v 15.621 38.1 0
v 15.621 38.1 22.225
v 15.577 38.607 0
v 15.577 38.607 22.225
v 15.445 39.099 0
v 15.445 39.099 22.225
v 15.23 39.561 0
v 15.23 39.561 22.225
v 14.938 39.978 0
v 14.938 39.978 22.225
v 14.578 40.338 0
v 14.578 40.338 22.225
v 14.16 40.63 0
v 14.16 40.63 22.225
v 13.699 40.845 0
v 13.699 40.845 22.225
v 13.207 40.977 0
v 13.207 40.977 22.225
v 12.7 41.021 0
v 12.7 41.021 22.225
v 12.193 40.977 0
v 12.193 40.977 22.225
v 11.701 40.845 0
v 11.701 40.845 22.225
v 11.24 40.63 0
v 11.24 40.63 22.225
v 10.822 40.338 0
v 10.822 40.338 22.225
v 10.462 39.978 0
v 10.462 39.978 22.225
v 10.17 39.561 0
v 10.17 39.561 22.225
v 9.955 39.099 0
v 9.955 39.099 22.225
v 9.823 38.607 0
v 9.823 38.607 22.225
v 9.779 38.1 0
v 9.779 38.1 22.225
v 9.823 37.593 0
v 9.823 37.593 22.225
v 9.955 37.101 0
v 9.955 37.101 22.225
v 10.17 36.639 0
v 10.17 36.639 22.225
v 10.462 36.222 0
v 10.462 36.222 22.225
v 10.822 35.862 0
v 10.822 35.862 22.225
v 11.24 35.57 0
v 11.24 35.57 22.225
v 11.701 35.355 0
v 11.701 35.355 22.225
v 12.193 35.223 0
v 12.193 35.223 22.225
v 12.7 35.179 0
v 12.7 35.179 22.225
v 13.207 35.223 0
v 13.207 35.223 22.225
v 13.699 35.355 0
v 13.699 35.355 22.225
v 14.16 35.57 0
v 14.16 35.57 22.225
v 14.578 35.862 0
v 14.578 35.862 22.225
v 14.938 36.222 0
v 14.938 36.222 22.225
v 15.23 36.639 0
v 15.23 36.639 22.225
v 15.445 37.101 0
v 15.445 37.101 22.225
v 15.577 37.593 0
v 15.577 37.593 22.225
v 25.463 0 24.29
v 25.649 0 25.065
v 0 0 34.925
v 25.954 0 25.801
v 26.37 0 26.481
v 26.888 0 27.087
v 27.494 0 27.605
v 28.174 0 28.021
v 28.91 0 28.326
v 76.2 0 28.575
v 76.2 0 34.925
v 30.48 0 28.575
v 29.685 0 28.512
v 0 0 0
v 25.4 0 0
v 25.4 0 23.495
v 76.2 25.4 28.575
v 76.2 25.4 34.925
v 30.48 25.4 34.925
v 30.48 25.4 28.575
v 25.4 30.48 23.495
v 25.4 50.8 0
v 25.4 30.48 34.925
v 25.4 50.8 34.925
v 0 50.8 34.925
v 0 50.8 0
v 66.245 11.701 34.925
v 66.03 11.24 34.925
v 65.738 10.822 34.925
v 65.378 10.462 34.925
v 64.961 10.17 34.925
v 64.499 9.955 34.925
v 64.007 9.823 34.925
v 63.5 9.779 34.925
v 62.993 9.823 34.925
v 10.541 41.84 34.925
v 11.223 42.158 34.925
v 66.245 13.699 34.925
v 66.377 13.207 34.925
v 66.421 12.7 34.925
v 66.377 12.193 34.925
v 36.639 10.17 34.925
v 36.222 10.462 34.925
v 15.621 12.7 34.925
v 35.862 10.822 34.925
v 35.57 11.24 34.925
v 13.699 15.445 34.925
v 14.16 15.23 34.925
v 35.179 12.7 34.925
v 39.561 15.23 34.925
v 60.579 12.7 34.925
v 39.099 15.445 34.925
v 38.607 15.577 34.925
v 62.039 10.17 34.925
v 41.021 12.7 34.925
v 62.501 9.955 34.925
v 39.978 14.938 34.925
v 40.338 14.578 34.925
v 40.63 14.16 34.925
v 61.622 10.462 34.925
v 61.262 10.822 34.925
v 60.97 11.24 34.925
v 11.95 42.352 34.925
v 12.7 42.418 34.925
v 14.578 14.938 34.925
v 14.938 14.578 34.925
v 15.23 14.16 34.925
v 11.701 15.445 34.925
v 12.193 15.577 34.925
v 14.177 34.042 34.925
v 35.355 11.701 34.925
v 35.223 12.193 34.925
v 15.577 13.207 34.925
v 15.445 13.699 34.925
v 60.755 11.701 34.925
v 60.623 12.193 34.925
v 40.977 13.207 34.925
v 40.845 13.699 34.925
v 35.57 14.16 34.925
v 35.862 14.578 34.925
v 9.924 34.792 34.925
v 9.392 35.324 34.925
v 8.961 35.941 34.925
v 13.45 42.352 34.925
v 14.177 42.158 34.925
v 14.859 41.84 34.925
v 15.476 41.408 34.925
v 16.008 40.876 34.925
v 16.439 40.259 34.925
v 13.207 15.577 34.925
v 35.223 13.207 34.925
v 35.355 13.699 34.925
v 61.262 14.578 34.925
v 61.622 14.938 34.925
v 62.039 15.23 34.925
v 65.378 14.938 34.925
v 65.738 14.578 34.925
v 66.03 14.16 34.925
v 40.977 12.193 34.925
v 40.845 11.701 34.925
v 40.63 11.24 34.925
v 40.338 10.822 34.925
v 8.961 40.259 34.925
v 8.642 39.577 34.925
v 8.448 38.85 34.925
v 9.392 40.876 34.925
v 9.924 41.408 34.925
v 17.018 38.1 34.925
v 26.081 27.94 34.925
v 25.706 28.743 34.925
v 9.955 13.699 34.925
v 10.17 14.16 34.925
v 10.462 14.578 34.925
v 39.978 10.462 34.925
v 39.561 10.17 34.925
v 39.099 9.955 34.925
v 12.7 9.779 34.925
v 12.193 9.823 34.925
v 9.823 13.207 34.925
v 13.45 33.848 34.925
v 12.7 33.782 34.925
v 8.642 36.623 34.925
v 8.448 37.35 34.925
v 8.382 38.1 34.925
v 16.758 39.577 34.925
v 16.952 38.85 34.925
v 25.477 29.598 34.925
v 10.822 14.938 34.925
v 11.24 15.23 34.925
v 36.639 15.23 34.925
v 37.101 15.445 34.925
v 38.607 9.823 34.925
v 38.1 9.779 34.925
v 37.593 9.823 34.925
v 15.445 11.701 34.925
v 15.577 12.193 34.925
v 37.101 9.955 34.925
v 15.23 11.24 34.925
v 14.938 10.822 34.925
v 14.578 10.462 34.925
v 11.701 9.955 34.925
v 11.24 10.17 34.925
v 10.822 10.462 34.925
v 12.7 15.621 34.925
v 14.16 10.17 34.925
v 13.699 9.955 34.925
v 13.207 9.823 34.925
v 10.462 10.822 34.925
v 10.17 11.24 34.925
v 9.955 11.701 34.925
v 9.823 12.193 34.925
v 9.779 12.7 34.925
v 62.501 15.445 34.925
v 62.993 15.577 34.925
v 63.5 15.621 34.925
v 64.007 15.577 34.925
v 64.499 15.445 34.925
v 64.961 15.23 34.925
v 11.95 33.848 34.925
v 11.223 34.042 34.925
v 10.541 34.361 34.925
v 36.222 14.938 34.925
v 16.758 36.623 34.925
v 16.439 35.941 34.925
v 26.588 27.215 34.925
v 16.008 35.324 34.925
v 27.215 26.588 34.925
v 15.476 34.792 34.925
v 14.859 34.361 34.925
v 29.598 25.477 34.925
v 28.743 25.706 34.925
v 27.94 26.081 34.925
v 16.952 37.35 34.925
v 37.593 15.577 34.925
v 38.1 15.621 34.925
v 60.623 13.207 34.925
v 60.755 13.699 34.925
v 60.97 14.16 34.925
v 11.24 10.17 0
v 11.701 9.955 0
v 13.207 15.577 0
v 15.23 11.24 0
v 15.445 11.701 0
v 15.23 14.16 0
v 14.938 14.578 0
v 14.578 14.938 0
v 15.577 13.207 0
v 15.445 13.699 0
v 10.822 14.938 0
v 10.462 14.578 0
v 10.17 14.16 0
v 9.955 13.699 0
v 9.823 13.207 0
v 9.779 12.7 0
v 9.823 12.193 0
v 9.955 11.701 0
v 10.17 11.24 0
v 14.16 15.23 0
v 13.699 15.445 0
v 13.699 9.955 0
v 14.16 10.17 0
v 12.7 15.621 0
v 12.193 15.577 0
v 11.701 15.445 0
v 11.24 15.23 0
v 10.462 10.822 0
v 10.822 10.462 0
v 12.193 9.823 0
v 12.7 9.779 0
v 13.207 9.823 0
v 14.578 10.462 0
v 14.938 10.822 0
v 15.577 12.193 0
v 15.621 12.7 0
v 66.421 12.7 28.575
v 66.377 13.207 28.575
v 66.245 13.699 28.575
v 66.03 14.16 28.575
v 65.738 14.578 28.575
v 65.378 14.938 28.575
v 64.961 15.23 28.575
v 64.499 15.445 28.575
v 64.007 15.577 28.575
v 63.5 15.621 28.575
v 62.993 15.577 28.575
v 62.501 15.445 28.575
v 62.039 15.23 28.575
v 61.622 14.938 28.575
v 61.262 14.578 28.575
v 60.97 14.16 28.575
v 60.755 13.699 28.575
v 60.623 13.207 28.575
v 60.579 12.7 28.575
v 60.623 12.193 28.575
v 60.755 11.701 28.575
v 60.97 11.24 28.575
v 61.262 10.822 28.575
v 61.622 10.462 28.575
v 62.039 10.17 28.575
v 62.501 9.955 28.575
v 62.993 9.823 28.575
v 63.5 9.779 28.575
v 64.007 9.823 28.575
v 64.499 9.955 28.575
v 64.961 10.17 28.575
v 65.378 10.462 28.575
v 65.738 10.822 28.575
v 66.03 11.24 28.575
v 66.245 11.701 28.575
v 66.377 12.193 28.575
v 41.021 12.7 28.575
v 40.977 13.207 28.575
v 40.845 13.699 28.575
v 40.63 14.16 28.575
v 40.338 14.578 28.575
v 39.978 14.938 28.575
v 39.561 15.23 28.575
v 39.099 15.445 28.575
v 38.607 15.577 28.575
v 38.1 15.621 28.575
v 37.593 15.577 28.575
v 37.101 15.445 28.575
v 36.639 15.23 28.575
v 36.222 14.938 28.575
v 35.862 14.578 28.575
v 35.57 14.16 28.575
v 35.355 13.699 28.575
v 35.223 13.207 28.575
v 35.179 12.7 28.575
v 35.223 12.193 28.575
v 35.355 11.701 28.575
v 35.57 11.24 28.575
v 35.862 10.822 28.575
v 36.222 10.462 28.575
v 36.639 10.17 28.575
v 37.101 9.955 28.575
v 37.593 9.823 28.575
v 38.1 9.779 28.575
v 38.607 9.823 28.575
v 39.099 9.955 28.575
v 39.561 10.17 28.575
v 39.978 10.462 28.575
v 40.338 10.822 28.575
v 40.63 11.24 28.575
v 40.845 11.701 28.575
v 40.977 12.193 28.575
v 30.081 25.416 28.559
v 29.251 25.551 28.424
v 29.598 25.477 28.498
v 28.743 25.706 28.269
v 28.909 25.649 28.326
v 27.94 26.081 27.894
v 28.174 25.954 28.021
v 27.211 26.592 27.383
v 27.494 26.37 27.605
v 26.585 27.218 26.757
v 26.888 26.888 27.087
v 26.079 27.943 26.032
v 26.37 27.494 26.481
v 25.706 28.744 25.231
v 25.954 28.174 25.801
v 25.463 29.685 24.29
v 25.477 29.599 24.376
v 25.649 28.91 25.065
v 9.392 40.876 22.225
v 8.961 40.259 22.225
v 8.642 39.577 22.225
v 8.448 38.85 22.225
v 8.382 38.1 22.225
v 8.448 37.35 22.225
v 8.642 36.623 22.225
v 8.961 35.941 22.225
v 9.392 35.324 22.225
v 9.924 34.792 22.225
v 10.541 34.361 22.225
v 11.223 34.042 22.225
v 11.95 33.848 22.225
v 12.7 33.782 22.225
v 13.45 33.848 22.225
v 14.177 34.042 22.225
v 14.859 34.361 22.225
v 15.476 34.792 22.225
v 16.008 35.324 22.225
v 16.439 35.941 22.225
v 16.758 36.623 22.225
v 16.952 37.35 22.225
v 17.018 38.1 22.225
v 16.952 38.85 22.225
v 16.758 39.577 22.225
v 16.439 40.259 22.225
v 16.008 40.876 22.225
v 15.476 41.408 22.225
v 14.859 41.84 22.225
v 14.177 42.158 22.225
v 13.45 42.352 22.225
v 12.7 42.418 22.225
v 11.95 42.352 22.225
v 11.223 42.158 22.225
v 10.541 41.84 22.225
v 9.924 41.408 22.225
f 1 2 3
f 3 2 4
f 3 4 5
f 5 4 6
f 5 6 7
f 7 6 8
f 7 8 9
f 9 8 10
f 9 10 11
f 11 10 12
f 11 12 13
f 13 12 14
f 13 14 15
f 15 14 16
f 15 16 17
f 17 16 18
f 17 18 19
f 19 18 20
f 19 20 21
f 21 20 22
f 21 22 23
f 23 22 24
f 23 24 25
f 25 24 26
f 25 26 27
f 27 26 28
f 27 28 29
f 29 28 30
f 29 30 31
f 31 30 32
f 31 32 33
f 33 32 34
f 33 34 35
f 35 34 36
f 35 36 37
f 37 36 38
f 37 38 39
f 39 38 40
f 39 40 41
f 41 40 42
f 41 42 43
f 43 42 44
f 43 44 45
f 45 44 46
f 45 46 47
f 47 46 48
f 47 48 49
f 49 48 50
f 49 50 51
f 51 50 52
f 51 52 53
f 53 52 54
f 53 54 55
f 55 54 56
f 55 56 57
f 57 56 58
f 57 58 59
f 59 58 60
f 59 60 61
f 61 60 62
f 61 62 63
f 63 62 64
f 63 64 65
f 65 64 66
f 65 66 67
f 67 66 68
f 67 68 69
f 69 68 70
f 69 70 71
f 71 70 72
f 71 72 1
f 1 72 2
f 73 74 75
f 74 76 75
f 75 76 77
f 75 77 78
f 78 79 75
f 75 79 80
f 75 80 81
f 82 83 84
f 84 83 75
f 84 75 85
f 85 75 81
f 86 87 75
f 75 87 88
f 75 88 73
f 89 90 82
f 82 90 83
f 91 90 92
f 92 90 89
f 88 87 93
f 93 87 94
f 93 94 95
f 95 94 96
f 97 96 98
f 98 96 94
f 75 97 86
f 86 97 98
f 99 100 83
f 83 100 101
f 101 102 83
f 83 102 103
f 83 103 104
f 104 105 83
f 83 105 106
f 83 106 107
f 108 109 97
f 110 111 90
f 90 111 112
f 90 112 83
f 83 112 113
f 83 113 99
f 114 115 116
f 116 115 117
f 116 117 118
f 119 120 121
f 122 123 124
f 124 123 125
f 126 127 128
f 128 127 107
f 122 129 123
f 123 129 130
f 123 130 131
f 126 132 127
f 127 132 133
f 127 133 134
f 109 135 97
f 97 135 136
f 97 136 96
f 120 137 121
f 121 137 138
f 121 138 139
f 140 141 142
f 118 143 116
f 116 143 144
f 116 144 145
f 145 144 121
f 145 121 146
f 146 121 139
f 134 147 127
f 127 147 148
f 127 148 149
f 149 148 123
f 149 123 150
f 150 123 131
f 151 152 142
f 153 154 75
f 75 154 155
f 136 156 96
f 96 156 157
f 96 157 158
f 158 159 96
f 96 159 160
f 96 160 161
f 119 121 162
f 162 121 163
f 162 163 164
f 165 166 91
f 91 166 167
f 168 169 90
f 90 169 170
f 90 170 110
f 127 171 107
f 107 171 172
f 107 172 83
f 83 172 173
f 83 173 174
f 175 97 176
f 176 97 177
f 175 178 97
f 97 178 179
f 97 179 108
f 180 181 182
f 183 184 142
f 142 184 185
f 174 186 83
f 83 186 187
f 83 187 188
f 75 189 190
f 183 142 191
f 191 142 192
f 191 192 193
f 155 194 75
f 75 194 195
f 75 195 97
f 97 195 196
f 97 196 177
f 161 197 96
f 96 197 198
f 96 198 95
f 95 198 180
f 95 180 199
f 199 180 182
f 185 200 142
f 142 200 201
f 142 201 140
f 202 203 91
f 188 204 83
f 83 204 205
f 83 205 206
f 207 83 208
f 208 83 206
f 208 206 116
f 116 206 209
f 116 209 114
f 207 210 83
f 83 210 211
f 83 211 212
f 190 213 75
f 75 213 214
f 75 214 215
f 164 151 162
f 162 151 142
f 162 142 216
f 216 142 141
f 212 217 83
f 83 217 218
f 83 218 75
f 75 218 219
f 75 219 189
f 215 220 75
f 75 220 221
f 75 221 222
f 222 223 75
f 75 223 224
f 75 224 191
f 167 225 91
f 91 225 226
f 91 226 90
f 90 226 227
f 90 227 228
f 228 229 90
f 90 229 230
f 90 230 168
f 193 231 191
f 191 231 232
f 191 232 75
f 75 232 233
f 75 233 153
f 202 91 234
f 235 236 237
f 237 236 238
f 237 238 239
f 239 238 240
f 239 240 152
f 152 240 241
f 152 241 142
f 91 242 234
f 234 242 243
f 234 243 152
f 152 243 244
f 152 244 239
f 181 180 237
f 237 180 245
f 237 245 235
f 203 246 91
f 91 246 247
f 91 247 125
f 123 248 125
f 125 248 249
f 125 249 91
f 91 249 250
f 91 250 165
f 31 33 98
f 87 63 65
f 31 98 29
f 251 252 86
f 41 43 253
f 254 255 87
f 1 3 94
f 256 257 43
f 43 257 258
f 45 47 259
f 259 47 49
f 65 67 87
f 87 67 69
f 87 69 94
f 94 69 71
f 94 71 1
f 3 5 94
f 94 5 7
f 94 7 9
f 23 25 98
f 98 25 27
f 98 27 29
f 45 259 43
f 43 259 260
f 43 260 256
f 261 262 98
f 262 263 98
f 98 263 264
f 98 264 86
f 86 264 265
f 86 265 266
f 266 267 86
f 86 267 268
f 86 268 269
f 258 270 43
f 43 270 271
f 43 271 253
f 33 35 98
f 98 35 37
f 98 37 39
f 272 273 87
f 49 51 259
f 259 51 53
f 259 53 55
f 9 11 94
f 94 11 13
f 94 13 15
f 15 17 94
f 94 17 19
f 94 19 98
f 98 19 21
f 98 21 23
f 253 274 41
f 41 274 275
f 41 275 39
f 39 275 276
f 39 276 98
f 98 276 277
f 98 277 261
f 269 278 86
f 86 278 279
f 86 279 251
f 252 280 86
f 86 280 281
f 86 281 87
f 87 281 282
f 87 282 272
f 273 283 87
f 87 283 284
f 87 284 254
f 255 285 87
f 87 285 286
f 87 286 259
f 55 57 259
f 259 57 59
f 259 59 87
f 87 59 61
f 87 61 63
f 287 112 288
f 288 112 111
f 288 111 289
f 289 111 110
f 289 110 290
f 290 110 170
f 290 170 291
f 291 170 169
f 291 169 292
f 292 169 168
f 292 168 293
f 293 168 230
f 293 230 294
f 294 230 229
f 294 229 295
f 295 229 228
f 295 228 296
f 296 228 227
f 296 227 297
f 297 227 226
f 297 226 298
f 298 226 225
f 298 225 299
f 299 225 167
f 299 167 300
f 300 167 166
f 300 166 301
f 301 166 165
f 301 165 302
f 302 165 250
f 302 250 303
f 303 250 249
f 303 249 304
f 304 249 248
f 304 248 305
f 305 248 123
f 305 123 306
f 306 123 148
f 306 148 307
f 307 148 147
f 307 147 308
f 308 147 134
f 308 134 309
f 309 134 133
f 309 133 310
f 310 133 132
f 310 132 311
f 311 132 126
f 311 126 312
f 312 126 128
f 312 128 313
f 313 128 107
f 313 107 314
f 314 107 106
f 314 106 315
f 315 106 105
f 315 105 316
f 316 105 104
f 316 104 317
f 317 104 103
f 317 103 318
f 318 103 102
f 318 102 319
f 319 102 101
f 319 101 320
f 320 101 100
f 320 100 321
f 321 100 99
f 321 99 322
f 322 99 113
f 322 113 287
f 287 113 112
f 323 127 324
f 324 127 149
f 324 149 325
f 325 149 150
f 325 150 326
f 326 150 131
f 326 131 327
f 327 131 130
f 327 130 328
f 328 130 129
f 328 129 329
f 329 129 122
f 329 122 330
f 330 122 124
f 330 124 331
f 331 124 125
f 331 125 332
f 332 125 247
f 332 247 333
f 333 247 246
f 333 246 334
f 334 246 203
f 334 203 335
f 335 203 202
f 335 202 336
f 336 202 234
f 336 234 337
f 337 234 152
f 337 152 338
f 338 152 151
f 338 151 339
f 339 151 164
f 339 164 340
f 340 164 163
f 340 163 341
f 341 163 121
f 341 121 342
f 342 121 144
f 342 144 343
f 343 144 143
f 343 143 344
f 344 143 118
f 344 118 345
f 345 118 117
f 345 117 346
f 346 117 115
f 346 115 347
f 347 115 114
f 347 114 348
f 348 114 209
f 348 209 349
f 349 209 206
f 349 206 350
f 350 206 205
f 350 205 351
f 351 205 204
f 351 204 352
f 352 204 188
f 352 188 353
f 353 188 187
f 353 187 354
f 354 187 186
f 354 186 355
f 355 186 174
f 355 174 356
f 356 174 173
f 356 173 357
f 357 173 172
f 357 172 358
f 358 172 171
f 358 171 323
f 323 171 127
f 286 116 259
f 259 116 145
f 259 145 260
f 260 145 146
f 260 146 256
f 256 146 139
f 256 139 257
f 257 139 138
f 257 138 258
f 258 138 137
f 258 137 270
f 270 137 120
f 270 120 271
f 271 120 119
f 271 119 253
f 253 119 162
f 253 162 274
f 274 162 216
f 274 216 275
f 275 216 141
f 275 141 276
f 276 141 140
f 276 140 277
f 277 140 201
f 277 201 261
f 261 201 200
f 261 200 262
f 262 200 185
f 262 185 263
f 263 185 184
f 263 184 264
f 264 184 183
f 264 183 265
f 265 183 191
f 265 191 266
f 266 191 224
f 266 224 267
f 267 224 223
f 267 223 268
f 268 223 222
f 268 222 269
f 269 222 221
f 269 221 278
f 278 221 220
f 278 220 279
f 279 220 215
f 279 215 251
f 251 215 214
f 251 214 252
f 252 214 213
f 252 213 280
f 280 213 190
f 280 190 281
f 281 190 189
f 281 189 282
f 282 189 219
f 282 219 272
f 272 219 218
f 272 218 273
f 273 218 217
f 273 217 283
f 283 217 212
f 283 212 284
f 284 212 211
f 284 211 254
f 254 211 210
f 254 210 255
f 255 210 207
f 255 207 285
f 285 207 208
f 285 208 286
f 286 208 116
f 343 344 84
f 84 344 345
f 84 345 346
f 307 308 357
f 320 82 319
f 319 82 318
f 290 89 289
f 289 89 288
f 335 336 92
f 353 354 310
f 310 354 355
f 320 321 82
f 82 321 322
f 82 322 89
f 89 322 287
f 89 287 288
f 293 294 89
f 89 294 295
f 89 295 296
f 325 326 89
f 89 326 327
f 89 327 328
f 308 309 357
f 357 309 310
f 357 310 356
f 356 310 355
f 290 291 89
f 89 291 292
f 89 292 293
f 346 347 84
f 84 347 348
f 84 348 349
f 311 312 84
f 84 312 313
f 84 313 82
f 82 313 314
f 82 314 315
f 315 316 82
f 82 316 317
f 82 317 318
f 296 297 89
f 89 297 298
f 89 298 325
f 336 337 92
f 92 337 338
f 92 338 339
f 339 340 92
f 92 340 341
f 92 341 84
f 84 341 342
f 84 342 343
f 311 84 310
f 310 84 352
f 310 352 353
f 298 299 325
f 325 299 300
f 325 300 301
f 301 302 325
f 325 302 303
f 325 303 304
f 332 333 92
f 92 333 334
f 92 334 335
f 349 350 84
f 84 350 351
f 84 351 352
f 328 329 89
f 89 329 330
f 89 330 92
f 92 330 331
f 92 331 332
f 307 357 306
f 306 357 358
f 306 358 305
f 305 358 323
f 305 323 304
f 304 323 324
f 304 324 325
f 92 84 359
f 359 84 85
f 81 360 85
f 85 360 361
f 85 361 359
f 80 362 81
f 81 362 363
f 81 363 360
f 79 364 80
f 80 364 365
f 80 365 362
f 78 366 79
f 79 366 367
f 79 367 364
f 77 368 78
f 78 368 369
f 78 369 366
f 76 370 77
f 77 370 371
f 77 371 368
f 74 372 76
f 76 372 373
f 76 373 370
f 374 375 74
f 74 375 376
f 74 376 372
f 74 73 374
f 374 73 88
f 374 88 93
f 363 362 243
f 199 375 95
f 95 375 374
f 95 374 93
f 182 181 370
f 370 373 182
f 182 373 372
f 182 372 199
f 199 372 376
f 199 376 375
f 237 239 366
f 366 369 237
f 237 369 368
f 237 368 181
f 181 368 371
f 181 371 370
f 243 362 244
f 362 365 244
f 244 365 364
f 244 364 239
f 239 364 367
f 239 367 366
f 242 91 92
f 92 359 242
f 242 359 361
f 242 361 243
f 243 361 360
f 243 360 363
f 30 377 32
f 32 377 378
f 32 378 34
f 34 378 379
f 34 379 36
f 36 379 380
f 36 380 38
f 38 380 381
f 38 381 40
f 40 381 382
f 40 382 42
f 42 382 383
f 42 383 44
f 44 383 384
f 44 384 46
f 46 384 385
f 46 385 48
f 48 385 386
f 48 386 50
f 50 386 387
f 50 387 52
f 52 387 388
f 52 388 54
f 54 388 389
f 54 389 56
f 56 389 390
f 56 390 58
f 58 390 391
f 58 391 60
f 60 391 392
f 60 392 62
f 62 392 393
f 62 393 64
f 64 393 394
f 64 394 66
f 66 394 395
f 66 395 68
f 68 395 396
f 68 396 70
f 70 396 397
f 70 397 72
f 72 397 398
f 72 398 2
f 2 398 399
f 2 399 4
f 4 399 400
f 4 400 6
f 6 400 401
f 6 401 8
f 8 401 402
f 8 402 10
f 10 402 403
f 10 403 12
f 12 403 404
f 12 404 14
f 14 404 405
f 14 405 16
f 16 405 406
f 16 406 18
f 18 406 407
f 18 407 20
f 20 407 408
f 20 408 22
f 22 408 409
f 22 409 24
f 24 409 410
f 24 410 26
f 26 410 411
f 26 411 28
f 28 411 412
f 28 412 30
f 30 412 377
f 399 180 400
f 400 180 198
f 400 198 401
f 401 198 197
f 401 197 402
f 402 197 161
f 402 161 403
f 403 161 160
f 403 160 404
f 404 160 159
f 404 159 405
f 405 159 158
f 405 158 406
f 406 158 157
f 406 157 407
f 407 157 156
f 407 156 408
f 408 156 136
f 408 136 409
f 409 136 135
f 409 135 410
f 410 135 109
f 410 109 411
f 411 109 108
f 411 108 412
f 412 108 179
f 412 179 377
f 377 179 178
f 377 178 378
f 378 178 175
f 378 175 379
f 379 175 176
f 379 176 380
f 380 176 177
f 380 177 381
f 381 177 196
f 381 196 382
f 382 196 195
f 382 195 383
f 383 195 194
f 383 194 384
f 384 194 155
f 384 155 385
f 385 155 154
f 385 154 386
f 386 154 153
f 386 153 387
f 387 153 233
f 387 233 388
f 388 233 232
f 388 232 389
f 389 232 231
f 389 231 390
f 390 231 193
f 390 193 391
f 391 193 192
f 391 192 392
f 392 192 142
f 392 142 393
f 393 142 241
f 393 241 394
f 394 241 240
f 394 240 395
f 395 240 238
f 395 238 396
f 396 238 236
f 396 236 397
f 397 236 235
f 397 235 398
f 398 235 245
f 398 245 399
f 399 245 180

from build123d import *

# Parameters (mm, degrees)
BOSS_EXTRUDE1_DEPTH = 34.925
SKETCH2_R           = 2.921
CUT_EXTRUDE1_DEPTH  = 99.014466407
SKETCH4_W           = 50.8
SKETCH4_H           = 28.575
CUT_EXTRUDE3_DEPTH  = 99.014466407
FILLET1_R           = 5.08
SKETCH5_R           = 4.318
CUT_EXTRUDE4_DEPTH  = 12.7


with BuildPart() as part:
    # Sketch1 → Boss-Extrude1 (new body)
    with BuildSketch(Plane.XY):
        Polygon((0, 0), (0, 50.8), (25.4, 50.8), (25.4, 25.4), (76.2, 25.4), (76.2, 0), align=None)
    extrude(amount=BOSS_EXTRUDE1_DEPTH)

    # Sketch2 → Cut-Extrude1 (cut, through all)
    with BuildSketch(Plane.XY.offset(34.925)):
        with Locations((12.7, 38.1)):
            Circle(SKETCH2_R)
        with Locations((12.7, 12.7)):
            Circle(SKETCH2_R)
        with Locations((38.1, 12.7)):
            Circle(SKETCH2_R)
        with Locations((63.5, 12.7)):
            Circle(SKETCH2_R)
    extrude(amount=-CUT_EXTRUDE1_DEPTH, mode=Mode.SUBTRACT)

    # Sketch4 → Cut-Extrude3 (cut, through all)
    with BuildSketch(Plane.XZ):
        with Locations((50.8, 14.2875)):
            Rectangle(SKETCH4_W, SKETCH4_H)
    extrude(amount=-CUT_EXTRUDE3_DEPTH, mode=Mode.SUBTRACT)

    # Fillet1
    fillet1_edges = [part.edges().sort_by_distance(p)[0] for p in [
        (25.4, 25.4, 31.75),
        (25.4, 12.7, 28.575),
    ]]
    fillet(fillet1_edges, radius=FILLET1_R)

    # Sketch5 → Cut-Extrude4 (cut)
    with BuildSketch(Plane.XY.offset(34.925)):
        with Locations((12.7, 38.1)):
            Circle(SKETCH5_R)
    extrude(amount=-CUT_EXTRUDE4_DEPTH, mode=Mode.SUBTRACT)


solid = part.part
